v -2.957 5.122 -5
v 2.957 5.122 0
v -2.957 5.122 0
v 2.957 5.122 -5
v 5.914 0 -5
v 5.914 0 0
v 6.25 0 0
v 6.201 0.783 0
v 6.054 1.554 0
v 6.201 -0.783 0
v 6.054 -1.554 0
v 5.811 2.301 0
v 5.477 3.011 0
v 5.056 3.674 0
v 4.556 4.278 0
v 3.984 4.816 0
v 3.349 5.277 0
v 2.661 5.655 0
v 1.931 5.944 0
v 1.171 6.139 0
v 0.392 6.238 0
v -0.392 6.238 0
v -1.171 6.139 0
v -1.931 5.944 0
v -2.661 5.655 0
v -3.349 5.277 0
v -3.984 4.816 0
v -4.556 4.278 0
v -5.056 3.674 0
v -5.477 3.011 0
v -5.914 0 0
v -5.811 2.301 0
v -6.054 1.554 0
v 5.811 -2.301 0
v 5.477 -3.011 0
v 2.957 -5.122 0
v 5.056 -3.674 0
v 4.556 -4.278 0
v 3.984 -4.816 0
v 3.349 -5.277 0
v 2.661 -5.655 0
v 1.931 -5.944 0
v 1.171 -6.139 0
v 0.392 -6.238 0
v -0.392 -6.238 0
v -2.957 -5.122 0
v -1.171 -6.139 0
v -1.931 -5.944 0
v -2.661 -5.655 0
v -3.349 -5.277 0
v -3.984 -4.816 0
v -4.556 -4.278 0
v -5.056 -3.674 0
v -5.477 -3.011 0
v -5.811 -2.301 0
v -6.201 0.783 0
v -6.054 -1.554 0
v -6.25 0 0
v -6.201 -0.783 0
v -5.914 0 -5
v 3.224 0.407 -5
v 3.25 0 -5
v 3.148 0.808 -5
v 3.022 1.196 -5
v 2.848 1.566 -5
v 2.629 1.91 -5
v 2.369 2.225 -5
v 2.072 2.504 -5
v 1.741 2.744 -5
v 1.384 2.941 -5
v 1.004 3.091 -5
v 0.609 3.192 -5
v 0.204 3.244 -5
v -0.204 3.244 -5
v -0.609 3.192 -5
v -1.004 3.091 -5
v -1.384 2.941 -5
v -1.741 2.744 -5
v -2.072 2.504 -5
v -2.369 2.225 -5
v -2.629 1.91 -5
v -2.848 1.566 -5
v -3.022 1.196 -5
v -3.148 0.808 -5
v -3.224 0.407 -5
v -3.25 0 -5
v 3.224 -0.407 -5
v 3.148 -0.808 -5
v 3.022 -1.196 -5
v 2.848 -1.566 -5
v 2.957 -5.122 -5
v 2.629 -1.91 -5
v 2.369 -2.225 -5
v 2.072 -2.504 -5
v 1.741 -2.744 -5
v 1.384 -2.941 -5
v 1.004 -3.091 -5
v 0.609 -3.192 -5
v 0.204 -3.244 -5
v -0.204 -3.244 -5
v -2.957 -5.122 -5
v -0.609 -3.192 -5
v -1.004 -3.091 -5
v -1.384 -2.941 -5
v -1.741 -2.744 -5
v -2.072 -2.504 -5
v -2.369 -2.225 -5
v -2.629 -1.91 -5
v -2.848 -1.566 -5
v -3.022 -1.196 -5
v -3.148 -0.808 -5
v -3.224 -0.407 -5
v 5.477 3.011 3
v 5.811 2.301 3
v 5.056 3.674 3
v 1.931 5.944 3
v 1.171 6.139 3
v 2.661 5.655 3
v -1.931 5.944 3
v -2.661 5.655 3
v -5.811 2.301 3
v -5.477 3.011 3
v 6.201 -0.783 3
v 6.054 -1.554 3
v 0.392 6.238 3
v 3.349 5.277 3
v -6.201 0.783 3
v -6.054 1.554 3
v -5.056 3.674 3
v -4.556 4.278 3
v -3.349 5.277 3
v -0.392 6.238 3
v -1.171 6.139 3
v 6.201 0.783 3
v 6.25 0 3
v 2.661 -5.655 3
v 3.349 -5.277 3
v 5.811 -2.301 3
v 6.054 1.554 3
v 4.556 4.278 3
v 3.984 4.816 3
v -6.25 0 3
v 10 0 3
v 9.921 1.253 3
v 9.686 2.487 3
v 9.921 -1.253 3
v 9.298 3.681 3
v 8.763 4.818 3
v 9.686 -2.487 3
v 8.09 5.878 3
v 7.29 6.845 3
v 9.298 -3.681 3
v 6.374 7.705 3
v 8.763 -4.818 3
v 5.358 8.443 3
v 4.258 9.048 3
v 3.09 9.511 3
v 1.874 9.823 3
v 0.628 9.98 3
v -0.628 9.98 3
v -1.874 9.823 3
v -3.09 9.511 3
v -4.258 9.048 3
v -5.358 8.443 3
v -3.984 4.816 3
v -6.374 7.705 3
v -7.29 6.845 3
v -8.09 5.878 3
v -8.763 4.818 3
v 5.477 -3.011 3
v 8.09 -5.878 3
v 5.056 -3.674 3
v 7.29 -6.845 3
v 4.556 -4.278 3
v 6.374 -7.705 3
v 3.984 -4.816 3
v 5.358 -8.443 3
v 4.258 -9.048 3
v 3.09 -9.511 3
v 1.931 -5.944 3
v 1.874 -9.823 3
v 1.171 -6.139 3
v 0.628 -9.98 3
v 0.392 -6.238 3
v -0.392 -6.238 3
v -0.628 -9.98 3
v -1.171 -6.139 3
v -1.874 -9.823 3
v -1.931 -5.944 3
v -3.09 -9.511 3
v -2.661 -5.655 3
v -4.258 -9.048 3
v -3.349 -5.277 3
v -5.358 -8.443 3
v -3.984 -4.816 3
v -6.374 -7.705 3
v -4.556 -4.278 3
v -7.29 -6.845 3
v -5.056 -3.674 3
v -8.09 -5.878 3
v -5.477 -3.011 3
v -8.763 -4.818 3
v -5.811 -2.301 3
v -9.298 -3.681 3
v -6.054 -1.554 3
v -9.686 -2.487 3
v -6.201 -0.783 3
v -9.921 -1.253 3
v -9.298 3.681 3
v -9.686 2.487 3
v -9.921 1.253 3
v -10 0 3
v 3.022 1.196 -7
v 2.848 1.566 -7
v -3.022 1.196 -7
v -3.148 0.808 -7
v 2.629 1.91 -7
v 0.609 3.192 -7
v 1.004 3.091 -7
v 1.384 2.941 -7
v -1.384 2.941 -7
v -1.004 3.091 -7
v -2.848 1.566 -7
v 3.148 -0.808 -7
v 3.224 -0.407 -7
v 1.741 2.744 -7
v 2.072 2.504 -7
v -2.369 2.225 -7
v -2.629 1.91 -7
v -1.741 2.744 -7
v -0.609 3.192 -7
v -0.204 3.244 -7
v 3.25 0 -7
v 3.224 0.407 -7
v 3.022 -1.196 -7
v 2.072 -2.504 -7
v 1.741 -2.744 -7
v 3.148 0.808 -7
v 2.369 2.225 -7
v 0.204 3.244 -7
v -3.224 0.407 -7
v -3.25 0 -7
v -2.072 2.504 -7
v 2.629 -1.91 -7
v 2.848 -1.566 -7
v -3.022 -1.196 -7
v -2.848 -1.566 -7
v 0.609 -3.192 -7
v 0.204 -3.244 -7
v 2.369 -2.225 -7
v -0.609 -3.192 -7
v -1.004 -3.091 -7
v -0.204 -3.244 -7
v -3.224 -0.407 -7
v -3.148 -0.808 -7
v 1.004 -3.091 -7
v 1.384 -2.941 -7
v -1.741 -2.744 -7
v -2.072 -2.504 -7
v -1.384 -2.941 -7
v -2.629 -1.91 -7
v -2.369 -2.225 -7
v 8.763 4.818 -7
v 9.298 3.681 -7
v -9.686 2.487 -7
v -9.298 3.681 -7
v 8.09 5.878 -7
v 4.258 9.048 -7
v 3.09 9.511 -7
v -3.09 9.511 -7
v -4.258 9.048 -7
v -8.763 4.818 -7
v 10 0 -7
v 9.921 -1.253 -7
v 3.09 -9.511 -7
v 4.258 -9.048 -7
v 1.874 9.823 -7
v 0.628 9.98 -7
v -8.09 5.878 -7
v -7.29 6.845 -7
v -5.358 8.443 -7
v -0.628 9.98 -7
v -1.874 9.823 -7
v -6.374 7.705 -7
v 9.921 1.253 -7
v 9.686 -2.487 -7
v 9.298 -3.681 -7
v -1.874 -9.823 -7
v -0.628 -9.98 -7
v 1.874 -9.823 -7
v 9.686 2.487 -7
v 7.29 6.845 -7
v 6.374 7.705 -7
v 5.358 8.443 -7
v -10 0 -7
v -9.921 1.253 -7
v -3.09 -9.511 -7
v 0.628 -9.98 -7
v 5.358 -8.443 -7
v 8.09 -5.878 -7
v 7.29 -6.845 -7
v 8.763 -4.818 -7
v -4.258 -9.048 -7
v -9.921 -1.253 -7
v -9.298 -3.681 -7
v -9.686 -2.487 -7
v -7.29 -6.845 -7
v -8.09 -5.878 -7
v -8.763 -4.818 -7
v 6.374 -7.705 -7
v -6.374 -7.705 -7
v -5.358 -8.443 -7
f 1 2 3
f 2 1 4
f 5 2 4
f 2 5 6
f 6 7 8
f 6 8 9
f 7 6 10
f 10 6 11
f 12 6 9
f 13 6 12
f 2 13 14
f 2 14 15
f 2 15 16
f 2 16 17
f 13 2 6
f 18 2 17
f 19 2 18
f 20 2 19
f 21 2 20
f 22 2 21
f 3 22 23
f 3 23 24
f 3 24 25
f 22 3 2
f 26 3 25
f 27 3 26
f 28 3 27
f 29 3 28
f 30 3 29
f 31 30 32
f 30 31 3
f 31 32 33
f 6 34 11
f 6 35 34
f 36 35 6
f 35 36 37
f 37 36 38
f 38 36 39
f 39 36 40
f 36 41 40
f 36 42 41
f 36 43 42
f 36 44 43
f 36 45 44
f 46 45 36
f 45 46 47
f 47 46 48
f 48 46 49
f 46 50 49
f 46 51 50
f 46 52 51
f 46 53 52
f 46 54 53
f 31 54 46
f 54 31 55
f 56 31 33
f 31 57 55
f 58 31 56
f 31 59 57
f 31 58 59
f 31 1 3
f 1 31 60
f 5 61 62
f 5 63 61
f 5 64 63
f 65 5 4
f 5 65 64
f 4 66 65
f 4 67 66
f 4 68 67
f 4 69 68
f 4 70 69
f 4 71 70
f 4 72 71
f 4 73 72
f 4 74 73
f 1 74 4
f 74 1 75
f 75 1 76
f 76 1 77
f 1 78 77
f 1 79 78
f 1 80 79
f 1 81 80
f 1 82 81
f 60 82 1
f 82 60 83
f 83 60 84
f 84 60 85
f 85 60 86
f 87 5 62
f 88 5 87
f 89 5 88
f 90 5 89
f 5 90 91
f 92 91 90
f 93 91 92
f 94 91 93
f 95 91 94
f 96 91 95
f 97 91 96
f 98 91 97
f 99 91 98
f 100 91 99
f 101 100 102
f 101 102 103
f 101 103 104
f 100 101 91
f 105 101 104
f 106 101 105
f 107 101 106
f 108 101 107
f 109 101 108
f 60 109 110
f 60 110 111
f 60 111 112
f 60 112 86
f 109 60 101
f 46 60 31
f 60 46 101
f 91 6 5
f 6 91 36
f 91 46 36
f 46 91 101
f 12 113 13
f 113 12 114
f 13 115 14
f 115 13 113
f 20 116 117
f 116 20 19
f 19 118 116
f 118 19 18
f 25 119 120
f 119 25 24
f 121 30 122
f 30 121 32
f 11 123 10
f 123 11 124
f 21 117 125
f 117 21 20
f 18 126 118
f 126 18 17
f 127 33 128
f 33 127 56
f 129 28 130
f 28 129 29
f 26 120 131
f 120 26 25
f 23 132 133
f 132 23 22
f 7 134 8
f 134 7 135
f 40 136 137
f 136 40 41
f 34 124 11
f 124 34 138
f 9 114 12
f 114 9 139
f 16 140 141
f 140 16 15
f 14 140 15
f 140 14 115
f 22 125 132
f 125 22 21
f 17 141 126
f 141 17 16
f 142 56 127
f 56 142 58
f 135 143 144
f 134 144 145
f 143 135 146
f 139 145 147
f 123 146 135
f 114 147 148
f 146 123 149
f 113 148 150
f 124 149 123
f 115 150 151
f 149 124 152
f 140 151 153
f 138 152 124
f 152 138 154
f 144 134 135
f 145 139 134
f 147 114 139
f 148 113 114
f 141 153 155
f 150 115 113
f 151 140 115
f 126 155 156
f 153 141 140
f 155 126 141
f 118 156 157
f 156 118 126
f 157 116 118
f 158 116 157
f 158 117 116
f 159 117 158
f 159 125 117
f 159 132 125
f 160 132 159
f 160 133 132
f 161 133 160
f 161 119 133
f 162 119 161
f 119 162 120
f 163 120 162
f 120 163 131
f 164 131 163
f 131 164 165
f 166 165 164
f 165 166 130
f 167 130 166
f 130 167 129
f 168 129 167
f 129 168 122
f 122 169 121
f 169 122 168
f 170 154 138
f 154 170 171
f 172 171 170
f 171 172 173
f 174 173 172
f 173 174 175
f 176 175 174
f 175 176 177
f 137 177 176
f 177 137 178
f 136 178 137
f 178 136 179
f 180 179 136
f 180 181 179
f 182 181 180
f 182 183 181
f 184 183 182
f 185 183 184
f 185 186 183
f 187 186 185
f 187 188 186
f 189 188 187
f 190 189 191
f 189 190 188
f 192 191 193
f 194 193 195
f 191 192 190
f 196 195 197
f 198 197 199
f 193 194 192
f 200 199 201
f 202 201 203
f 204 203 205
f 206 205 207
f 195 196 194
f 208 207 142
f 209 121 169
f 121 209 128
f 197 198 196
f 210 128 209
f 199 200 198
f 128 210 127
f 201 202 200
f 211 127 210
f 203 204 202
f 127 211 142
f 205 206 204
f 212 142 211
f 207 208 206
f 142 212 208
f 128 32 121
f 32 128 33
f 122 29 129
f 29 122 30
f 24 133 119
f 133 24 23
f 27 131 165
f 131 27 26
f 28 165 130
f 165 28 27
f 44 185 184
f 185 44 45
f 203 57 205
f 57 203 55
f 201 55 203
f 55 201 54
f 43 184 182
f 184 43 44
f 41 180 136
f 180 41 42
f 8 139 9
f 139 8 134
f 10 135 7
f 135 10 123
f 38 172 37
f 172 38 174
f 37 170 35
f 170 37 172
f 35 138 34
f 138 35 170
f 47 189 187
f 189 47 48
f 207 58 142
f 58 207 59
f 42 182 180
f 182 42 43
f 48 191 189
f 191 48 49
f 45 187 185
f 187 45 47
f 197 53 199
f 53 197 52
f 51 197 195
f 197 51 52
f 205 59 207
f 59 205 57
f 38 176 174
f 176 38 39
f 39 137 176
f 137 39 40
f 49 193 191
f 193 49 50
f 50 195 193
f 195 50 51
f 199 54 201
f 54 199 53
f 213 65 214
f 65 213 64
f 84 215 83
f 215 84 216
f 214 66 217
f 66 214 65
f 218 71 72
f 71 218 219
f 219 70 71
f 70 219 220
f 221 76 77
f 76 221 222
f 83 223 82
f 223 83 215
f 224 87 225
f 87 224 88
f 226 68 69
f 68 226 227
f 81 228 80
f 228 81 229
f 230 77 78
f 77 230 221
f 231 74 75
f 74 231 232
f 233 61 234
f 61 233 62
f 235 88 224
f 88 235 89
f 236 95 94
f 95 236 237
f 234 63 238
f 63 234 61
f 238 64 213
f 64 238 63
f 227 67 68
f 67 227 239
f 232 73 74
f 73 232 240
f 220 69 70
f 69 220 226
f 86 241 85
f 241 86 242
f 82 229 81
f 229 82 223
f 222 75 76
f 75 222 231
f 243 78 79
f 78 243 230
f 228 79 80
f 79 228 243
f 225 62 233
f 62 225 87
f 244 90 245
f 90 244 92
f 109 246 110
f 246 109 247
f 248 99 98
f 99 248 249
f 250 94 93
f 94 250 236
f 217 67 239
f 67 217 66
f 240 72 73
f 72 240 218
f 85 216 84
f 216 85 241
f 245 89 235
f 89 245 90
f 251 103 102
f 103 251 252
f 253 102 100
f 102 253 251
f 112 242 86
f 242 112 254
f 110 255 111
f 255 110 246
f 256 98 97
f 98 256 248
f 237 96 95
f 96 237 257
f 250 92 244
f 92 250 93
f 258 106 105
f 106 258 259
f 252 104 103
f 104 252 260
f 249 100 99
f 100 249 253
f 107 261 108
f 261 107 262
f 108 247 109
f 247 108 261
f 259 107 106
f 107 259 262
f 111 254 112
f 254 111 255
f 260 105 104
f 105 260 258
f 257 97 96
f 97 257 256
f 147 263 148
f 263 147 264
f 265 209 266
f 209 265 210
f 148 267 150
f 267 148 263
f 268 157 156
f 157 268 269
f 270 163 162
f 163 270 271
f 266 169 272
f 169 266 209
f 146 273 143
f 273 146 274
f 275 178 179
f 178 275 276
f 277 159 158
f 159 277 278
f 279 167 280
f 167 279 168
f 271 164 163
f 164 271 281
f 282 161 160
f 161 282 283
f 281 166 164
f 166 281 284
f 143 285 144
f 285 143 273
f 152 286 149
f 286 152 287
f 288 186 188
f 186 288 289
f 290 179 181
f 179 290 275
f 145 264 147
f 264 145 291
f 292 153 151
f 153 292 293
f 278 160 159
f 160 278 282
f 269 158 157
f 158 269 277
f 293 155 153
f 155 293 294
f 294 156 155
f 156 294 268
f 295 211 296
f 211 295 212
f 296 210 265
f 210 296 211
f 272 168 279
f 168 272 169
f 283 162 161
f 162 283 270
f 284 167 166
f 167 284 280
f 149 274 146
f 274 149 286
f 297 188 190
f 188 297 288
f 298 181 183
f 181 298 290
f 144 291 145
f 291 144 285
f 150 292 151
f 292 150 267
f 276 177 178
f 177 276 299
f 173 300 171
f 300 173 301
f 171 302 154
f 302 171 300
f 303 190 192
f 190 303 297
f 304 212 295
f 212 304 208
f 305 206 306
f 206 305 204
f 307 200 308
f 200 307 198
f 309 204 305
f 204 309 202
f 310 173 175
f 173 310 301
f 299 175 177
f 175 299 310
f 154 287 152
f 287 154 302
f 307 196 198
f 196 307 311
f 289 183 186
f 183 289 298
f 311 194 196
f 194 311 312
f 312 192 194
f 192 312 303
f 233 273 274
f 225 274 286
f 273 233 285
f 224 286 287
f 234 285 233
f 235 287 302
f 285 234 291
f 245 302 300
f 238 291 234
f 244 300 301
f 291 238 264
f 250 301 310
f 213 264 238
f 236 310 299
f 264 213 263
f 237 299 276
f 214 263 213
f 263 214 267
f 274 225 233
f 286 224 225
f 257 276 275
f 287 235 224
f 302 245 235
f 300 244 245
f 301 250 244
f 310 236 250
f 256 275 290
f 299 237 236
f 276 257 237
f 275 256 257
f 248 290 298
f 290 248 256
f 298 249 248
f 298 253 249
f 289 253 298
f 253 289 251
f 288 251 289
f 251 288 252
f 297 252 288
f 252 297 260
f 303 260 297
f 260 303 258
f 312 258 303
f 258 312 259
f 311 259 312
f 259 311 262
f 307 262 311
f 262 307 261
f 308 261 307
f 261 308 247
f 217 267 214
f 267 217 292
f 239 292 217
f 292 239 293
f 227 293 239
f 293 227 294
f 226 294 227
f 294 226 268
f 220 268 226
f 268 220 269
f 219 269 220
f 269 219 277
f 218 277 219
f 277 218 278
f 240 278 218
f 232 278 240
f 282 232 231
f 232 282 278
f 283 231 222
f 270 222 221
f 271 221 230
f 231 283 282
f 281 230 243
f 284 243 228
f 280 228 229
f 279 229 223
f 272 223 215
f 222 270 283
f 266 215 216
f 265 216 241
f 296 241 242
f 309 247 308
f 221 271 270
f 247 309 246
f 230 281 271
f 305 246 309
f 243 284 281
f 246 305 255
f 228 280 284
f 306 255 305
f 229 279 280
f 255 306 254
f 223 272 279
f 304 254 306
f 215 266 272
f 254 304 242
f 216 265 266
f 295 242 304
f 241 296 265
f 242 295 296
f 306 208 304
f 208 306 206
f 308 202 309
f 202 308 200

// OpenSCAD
$fn = 50;

difference() {
	union() {
		translate(v = [0, 0, -7.0]) {
			cylinder(h = 10.0, r = 10.0);
		}
	}
	union() {
		translate(v = [0, 0, 0]) {
			rotate(a = [0, 0, 0]) {
				difference() {
					union() {
						translate(v = [0, 0, -5]) {
							linear_extrude(height = 5) {
								polygon(points = [[5.914249999999999, 0.0], [2.957125, 5.1218907443321156], [-2.9571249999999982, 5.1218907443321156], [-5.914249999999999, 7.242867331857232e-16], [-2.9571250000000022, -5.121890744332115], [2.9571249999999956, -5.121890744332118]]);
							}
						}
					}
					union();
				}
			}
		}
		#cylinder(h = 3, r = 6.25);
		#translate(v = [0, 0, -100.0]) {
			cylinder(h = 200, r = 3.25);
		}
	}
}
